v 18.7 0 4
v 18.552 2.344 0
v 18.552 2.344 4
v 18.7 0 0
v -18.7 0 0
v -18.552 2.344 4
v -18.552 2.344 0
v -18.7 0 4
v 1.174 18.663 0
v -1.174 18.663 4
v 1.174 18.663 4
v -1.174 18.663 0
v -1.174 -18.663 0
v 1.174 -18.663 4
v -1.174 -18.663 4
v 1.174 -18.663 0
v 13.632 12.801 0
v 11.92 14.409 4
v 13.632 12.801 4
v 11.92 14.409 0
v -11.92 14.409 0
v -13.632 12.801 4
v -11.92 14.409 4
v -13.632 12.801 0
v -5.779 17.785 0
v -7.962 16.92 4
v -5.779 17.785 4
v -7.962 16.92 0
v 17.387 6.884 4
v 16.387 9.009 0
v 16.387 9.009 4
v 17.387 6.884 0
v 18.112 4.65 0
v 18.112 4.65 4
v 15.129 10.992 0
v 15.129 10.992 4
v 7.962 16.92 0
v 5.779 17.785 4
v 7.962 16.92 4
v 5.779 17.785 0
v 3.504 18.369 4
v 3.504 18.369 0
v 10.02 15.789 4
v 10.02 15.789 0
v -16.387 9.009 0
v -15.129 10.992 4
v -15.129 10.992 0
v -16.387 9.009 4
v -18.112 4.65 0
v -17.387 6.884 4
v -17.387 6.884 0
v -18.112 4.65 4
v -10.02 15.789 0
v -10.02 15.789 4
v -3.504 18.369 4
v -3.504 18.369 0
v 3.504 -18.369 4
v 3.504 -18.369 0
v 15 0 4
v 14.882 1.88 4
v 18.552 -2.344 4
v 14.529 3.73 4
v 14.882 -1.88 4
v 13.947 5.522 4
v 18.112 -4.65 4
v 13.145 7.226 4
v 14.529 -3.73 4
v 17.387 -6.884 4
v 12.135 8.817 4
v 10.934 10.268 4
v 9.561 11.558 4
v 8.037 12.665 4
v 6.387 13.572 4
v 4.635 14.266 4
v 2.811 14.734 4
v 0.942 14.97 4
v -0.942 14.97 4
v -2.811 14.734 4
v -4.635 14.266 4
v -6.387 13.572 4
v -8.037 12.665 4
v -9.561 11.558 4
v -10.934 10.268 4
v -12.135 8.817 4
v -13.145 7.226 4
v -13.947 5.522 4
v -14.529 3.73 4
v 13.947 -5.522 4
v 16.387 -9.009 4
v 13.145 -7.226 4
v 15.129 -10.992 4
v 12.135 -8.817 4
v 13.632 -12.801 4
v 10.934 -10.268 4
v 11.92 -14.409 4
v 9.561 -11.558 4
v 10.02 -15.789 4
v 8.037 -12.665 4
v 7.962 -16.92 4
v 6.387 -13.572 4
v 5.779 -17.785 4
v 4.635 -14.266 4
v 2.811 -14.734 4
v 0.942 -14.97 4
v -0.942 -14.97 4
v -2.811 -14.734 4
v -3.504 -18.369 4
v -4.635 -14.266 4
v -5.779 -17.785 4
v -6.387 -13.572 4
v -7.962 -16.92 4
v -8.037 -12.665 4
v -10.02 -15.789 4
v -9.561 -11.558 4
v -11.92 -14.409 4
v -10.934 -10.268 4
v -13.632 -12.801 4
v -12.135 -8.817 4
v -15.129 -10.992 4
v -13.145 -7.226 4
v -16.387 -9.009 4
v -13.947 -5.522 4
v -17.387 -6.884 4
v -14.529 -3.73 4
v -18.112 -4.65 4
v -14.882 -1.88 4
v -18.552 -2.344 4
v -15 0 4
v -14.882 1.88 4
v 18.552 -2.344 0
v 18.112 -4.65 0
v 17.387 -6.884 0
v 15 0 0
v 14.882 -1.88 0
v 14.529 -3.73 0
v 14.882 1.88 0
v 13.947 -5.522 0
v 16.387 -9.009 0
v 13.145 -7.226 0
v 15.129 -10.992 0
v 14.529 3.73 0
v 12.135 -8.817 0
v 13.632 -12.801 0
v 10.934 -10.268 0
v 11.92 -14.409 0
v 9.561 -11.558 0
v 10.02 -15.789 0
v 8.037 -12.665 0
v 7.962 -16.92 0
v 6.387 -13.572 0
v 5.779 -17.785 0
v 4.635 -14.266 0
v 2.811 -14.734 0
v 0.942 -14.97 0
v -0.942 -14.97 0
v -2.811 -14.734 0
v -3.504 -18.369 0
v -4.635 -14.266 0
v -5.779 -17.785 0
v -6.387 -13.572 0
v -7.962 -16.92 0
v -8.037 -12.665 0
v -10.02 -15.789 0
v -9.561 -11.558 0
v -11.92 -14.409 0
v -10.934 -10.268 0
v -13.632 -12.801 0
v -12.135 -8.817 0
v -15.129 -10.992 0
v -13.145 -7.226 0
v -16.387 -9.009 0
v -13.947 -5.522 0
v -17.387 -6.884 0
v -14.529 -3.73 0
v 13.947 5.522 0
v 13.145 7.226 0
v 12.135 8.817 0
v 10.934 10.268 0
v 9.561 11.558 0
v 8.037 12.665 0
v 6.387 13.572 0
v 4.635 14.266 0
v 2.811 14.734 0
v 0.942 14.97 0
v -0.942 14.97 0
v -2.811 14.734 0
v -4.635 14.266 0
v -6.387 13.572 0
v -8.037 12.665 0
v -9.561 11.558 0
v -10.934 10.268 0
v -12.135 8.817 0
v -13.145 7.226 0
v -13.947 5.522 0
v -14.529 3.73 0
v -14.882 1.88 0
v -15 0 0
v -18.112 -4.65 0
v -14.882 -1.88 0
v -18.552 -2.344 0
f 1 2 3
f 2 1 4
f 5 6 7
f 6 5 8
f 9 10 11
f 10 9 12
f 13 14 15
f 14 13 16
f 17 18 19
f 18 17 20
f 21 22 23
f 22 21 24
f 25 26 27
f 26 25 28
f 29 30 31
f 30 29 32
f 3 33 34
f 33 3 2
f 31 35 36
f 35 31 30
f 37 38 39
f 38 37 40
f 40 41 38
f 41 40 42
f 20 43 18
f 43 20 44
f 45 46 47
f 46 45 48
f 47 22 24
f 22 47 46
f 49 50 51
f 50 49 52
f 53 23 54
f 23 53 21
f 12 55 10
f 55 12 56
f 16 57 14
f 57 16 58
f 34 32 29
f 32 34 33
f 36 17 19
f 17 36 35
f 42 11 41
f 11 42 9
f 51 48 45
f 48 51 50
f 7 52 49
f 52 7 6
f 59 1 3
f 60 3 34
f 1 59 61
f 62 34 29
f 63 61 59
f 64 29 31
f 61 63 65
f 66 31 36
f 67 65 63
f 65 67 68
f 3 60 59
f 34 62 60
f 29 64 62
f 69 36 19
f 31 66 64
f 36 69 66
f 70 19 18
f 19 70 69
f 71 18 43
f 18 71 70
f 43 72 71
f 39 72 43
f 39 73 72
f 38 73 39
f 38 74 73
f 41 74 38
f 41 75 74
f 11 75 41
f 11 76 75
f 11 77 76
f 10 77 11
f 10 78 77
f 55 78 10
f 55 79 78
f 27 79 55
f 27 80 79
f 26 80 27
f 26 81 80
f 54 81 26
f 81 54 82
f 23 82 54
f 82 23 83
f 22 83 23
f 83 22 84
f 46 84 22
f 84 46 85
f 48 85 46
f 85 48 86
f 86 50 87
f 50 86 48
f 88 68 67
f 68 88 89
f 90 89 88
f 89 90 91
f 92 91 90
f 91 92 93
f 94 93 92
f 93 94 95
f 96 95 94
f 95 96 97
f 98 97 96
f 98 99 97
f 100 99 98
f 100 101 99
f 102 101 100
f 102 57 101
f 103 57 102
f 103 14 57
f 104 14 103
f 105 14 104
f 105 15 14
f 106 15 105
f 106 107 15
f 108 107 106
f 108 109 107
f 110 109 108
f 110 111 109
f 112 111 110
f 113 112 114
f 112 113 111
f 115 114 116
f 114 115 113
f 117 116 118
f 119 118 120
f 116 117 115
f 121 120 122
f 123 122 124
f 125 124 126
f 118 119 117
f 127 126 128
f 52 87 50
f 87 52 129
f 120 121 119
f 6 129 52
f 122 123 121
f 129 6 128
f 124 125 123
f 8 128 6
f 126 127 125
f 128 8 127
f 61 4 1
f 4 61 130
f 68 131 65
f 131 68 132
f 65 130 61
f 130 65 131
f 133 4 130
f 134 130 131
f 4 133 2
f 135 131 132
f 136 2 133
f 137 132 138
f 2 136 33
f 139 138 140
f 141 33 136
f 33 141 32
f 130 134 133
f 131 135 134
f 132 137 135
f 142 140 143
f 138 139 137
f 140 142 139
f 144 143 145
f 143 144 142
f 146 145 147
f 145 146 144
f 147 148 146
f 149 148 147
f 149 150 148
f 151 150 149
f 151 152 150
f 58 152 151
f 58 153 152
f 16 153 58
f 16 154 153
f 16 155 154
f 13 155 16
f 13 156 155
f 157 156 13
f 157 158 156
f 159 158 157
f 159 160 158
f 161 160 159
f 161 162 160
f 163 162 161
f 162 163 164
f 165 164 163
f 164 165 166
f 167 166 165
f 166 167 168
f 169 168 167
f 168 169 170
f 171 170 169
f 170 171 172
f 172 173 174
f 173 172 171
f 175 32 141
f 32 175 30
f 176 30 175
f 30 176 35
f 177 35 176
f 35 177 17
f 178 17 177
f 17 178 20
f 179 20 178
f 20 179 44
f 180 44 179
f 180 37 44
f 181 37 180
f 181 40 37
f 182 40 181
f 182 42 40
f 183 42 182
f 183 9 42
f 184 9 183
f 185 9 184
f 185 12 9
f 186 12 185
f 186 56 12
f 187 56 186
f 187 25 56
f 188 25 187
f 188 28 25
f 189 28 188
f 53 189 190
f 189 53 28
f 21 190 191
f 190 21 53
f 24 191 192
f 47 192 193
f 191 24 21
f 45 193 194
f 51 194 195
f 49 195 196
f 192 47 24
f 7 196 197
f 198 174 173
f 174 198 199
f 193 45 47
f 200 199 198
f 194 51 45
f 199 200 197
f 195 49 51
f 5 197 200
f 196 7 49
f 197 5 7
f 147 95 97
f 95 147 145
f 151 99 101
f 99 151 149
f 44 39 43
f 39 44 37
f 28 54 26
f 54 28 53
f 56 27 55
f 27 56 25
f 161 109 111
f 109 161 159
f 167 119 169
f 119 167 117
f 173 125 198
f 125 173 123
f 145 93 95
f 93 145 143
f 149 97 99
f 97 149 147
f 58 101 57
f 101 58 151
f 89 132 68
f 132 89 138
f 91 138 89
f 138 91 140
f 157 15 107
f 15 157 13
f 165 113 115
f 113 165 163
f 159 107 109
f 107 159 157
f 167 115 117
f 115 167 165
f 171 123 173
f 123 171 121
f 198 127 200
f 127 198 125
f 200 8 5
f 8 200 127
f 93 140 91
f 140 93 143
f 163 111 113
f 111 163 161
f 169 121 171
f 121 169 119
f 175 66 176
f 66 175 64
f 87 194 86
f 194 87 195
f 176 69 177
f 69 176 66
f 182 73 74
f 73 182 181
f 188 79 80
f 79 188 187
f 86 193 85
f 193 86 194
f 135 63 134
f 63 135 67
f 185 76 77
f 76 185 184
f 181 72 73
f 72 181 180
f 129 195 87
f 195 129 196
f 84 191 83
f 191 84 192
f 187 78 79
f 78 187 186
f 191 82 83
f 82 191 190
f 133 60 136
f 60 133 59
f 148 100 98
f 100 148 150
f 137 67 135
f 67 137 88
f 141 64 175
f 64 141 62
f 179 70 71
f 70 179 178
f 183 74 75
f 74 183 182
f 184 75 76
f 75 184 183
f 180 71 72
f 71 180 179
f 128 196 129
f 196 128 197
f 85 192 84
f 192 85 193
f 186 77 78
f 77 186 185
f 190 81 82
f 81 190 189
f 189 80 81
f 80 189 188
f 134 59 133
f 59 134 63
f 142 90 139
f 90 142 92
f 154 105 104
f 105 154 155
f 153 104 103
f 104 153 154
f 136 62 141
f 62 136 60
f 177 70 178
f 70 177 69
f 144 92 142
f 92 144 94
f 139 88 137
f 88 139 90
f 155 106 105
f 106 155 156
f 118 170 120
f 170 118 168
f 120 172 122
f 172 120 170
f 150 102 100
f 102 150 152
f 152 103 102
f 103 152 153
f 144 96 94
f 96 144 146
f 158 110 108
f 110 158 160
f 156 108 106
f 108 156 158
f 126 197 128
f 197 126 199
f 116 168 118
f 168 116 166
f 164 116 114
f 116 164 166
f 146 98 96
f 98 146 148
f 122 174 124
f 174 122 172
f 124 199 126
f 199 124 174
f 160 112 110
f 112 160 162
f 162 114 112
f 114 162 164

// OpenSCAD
$fn = 50;


difference() {
	union() {
		translate(v = [0, 0, 0]) {
			rotate(a = [0, 0, 0]) {
				cylinder(h = 4, r = 18.7000000000);
			}
		}
	}
	union() {
		translate(v = [0, 0, 0]) {
			rotate(a = [0, 0, 0]) {
				cylinder(h = 4, r = 15.0000000000);
			}
		}
	}
}
